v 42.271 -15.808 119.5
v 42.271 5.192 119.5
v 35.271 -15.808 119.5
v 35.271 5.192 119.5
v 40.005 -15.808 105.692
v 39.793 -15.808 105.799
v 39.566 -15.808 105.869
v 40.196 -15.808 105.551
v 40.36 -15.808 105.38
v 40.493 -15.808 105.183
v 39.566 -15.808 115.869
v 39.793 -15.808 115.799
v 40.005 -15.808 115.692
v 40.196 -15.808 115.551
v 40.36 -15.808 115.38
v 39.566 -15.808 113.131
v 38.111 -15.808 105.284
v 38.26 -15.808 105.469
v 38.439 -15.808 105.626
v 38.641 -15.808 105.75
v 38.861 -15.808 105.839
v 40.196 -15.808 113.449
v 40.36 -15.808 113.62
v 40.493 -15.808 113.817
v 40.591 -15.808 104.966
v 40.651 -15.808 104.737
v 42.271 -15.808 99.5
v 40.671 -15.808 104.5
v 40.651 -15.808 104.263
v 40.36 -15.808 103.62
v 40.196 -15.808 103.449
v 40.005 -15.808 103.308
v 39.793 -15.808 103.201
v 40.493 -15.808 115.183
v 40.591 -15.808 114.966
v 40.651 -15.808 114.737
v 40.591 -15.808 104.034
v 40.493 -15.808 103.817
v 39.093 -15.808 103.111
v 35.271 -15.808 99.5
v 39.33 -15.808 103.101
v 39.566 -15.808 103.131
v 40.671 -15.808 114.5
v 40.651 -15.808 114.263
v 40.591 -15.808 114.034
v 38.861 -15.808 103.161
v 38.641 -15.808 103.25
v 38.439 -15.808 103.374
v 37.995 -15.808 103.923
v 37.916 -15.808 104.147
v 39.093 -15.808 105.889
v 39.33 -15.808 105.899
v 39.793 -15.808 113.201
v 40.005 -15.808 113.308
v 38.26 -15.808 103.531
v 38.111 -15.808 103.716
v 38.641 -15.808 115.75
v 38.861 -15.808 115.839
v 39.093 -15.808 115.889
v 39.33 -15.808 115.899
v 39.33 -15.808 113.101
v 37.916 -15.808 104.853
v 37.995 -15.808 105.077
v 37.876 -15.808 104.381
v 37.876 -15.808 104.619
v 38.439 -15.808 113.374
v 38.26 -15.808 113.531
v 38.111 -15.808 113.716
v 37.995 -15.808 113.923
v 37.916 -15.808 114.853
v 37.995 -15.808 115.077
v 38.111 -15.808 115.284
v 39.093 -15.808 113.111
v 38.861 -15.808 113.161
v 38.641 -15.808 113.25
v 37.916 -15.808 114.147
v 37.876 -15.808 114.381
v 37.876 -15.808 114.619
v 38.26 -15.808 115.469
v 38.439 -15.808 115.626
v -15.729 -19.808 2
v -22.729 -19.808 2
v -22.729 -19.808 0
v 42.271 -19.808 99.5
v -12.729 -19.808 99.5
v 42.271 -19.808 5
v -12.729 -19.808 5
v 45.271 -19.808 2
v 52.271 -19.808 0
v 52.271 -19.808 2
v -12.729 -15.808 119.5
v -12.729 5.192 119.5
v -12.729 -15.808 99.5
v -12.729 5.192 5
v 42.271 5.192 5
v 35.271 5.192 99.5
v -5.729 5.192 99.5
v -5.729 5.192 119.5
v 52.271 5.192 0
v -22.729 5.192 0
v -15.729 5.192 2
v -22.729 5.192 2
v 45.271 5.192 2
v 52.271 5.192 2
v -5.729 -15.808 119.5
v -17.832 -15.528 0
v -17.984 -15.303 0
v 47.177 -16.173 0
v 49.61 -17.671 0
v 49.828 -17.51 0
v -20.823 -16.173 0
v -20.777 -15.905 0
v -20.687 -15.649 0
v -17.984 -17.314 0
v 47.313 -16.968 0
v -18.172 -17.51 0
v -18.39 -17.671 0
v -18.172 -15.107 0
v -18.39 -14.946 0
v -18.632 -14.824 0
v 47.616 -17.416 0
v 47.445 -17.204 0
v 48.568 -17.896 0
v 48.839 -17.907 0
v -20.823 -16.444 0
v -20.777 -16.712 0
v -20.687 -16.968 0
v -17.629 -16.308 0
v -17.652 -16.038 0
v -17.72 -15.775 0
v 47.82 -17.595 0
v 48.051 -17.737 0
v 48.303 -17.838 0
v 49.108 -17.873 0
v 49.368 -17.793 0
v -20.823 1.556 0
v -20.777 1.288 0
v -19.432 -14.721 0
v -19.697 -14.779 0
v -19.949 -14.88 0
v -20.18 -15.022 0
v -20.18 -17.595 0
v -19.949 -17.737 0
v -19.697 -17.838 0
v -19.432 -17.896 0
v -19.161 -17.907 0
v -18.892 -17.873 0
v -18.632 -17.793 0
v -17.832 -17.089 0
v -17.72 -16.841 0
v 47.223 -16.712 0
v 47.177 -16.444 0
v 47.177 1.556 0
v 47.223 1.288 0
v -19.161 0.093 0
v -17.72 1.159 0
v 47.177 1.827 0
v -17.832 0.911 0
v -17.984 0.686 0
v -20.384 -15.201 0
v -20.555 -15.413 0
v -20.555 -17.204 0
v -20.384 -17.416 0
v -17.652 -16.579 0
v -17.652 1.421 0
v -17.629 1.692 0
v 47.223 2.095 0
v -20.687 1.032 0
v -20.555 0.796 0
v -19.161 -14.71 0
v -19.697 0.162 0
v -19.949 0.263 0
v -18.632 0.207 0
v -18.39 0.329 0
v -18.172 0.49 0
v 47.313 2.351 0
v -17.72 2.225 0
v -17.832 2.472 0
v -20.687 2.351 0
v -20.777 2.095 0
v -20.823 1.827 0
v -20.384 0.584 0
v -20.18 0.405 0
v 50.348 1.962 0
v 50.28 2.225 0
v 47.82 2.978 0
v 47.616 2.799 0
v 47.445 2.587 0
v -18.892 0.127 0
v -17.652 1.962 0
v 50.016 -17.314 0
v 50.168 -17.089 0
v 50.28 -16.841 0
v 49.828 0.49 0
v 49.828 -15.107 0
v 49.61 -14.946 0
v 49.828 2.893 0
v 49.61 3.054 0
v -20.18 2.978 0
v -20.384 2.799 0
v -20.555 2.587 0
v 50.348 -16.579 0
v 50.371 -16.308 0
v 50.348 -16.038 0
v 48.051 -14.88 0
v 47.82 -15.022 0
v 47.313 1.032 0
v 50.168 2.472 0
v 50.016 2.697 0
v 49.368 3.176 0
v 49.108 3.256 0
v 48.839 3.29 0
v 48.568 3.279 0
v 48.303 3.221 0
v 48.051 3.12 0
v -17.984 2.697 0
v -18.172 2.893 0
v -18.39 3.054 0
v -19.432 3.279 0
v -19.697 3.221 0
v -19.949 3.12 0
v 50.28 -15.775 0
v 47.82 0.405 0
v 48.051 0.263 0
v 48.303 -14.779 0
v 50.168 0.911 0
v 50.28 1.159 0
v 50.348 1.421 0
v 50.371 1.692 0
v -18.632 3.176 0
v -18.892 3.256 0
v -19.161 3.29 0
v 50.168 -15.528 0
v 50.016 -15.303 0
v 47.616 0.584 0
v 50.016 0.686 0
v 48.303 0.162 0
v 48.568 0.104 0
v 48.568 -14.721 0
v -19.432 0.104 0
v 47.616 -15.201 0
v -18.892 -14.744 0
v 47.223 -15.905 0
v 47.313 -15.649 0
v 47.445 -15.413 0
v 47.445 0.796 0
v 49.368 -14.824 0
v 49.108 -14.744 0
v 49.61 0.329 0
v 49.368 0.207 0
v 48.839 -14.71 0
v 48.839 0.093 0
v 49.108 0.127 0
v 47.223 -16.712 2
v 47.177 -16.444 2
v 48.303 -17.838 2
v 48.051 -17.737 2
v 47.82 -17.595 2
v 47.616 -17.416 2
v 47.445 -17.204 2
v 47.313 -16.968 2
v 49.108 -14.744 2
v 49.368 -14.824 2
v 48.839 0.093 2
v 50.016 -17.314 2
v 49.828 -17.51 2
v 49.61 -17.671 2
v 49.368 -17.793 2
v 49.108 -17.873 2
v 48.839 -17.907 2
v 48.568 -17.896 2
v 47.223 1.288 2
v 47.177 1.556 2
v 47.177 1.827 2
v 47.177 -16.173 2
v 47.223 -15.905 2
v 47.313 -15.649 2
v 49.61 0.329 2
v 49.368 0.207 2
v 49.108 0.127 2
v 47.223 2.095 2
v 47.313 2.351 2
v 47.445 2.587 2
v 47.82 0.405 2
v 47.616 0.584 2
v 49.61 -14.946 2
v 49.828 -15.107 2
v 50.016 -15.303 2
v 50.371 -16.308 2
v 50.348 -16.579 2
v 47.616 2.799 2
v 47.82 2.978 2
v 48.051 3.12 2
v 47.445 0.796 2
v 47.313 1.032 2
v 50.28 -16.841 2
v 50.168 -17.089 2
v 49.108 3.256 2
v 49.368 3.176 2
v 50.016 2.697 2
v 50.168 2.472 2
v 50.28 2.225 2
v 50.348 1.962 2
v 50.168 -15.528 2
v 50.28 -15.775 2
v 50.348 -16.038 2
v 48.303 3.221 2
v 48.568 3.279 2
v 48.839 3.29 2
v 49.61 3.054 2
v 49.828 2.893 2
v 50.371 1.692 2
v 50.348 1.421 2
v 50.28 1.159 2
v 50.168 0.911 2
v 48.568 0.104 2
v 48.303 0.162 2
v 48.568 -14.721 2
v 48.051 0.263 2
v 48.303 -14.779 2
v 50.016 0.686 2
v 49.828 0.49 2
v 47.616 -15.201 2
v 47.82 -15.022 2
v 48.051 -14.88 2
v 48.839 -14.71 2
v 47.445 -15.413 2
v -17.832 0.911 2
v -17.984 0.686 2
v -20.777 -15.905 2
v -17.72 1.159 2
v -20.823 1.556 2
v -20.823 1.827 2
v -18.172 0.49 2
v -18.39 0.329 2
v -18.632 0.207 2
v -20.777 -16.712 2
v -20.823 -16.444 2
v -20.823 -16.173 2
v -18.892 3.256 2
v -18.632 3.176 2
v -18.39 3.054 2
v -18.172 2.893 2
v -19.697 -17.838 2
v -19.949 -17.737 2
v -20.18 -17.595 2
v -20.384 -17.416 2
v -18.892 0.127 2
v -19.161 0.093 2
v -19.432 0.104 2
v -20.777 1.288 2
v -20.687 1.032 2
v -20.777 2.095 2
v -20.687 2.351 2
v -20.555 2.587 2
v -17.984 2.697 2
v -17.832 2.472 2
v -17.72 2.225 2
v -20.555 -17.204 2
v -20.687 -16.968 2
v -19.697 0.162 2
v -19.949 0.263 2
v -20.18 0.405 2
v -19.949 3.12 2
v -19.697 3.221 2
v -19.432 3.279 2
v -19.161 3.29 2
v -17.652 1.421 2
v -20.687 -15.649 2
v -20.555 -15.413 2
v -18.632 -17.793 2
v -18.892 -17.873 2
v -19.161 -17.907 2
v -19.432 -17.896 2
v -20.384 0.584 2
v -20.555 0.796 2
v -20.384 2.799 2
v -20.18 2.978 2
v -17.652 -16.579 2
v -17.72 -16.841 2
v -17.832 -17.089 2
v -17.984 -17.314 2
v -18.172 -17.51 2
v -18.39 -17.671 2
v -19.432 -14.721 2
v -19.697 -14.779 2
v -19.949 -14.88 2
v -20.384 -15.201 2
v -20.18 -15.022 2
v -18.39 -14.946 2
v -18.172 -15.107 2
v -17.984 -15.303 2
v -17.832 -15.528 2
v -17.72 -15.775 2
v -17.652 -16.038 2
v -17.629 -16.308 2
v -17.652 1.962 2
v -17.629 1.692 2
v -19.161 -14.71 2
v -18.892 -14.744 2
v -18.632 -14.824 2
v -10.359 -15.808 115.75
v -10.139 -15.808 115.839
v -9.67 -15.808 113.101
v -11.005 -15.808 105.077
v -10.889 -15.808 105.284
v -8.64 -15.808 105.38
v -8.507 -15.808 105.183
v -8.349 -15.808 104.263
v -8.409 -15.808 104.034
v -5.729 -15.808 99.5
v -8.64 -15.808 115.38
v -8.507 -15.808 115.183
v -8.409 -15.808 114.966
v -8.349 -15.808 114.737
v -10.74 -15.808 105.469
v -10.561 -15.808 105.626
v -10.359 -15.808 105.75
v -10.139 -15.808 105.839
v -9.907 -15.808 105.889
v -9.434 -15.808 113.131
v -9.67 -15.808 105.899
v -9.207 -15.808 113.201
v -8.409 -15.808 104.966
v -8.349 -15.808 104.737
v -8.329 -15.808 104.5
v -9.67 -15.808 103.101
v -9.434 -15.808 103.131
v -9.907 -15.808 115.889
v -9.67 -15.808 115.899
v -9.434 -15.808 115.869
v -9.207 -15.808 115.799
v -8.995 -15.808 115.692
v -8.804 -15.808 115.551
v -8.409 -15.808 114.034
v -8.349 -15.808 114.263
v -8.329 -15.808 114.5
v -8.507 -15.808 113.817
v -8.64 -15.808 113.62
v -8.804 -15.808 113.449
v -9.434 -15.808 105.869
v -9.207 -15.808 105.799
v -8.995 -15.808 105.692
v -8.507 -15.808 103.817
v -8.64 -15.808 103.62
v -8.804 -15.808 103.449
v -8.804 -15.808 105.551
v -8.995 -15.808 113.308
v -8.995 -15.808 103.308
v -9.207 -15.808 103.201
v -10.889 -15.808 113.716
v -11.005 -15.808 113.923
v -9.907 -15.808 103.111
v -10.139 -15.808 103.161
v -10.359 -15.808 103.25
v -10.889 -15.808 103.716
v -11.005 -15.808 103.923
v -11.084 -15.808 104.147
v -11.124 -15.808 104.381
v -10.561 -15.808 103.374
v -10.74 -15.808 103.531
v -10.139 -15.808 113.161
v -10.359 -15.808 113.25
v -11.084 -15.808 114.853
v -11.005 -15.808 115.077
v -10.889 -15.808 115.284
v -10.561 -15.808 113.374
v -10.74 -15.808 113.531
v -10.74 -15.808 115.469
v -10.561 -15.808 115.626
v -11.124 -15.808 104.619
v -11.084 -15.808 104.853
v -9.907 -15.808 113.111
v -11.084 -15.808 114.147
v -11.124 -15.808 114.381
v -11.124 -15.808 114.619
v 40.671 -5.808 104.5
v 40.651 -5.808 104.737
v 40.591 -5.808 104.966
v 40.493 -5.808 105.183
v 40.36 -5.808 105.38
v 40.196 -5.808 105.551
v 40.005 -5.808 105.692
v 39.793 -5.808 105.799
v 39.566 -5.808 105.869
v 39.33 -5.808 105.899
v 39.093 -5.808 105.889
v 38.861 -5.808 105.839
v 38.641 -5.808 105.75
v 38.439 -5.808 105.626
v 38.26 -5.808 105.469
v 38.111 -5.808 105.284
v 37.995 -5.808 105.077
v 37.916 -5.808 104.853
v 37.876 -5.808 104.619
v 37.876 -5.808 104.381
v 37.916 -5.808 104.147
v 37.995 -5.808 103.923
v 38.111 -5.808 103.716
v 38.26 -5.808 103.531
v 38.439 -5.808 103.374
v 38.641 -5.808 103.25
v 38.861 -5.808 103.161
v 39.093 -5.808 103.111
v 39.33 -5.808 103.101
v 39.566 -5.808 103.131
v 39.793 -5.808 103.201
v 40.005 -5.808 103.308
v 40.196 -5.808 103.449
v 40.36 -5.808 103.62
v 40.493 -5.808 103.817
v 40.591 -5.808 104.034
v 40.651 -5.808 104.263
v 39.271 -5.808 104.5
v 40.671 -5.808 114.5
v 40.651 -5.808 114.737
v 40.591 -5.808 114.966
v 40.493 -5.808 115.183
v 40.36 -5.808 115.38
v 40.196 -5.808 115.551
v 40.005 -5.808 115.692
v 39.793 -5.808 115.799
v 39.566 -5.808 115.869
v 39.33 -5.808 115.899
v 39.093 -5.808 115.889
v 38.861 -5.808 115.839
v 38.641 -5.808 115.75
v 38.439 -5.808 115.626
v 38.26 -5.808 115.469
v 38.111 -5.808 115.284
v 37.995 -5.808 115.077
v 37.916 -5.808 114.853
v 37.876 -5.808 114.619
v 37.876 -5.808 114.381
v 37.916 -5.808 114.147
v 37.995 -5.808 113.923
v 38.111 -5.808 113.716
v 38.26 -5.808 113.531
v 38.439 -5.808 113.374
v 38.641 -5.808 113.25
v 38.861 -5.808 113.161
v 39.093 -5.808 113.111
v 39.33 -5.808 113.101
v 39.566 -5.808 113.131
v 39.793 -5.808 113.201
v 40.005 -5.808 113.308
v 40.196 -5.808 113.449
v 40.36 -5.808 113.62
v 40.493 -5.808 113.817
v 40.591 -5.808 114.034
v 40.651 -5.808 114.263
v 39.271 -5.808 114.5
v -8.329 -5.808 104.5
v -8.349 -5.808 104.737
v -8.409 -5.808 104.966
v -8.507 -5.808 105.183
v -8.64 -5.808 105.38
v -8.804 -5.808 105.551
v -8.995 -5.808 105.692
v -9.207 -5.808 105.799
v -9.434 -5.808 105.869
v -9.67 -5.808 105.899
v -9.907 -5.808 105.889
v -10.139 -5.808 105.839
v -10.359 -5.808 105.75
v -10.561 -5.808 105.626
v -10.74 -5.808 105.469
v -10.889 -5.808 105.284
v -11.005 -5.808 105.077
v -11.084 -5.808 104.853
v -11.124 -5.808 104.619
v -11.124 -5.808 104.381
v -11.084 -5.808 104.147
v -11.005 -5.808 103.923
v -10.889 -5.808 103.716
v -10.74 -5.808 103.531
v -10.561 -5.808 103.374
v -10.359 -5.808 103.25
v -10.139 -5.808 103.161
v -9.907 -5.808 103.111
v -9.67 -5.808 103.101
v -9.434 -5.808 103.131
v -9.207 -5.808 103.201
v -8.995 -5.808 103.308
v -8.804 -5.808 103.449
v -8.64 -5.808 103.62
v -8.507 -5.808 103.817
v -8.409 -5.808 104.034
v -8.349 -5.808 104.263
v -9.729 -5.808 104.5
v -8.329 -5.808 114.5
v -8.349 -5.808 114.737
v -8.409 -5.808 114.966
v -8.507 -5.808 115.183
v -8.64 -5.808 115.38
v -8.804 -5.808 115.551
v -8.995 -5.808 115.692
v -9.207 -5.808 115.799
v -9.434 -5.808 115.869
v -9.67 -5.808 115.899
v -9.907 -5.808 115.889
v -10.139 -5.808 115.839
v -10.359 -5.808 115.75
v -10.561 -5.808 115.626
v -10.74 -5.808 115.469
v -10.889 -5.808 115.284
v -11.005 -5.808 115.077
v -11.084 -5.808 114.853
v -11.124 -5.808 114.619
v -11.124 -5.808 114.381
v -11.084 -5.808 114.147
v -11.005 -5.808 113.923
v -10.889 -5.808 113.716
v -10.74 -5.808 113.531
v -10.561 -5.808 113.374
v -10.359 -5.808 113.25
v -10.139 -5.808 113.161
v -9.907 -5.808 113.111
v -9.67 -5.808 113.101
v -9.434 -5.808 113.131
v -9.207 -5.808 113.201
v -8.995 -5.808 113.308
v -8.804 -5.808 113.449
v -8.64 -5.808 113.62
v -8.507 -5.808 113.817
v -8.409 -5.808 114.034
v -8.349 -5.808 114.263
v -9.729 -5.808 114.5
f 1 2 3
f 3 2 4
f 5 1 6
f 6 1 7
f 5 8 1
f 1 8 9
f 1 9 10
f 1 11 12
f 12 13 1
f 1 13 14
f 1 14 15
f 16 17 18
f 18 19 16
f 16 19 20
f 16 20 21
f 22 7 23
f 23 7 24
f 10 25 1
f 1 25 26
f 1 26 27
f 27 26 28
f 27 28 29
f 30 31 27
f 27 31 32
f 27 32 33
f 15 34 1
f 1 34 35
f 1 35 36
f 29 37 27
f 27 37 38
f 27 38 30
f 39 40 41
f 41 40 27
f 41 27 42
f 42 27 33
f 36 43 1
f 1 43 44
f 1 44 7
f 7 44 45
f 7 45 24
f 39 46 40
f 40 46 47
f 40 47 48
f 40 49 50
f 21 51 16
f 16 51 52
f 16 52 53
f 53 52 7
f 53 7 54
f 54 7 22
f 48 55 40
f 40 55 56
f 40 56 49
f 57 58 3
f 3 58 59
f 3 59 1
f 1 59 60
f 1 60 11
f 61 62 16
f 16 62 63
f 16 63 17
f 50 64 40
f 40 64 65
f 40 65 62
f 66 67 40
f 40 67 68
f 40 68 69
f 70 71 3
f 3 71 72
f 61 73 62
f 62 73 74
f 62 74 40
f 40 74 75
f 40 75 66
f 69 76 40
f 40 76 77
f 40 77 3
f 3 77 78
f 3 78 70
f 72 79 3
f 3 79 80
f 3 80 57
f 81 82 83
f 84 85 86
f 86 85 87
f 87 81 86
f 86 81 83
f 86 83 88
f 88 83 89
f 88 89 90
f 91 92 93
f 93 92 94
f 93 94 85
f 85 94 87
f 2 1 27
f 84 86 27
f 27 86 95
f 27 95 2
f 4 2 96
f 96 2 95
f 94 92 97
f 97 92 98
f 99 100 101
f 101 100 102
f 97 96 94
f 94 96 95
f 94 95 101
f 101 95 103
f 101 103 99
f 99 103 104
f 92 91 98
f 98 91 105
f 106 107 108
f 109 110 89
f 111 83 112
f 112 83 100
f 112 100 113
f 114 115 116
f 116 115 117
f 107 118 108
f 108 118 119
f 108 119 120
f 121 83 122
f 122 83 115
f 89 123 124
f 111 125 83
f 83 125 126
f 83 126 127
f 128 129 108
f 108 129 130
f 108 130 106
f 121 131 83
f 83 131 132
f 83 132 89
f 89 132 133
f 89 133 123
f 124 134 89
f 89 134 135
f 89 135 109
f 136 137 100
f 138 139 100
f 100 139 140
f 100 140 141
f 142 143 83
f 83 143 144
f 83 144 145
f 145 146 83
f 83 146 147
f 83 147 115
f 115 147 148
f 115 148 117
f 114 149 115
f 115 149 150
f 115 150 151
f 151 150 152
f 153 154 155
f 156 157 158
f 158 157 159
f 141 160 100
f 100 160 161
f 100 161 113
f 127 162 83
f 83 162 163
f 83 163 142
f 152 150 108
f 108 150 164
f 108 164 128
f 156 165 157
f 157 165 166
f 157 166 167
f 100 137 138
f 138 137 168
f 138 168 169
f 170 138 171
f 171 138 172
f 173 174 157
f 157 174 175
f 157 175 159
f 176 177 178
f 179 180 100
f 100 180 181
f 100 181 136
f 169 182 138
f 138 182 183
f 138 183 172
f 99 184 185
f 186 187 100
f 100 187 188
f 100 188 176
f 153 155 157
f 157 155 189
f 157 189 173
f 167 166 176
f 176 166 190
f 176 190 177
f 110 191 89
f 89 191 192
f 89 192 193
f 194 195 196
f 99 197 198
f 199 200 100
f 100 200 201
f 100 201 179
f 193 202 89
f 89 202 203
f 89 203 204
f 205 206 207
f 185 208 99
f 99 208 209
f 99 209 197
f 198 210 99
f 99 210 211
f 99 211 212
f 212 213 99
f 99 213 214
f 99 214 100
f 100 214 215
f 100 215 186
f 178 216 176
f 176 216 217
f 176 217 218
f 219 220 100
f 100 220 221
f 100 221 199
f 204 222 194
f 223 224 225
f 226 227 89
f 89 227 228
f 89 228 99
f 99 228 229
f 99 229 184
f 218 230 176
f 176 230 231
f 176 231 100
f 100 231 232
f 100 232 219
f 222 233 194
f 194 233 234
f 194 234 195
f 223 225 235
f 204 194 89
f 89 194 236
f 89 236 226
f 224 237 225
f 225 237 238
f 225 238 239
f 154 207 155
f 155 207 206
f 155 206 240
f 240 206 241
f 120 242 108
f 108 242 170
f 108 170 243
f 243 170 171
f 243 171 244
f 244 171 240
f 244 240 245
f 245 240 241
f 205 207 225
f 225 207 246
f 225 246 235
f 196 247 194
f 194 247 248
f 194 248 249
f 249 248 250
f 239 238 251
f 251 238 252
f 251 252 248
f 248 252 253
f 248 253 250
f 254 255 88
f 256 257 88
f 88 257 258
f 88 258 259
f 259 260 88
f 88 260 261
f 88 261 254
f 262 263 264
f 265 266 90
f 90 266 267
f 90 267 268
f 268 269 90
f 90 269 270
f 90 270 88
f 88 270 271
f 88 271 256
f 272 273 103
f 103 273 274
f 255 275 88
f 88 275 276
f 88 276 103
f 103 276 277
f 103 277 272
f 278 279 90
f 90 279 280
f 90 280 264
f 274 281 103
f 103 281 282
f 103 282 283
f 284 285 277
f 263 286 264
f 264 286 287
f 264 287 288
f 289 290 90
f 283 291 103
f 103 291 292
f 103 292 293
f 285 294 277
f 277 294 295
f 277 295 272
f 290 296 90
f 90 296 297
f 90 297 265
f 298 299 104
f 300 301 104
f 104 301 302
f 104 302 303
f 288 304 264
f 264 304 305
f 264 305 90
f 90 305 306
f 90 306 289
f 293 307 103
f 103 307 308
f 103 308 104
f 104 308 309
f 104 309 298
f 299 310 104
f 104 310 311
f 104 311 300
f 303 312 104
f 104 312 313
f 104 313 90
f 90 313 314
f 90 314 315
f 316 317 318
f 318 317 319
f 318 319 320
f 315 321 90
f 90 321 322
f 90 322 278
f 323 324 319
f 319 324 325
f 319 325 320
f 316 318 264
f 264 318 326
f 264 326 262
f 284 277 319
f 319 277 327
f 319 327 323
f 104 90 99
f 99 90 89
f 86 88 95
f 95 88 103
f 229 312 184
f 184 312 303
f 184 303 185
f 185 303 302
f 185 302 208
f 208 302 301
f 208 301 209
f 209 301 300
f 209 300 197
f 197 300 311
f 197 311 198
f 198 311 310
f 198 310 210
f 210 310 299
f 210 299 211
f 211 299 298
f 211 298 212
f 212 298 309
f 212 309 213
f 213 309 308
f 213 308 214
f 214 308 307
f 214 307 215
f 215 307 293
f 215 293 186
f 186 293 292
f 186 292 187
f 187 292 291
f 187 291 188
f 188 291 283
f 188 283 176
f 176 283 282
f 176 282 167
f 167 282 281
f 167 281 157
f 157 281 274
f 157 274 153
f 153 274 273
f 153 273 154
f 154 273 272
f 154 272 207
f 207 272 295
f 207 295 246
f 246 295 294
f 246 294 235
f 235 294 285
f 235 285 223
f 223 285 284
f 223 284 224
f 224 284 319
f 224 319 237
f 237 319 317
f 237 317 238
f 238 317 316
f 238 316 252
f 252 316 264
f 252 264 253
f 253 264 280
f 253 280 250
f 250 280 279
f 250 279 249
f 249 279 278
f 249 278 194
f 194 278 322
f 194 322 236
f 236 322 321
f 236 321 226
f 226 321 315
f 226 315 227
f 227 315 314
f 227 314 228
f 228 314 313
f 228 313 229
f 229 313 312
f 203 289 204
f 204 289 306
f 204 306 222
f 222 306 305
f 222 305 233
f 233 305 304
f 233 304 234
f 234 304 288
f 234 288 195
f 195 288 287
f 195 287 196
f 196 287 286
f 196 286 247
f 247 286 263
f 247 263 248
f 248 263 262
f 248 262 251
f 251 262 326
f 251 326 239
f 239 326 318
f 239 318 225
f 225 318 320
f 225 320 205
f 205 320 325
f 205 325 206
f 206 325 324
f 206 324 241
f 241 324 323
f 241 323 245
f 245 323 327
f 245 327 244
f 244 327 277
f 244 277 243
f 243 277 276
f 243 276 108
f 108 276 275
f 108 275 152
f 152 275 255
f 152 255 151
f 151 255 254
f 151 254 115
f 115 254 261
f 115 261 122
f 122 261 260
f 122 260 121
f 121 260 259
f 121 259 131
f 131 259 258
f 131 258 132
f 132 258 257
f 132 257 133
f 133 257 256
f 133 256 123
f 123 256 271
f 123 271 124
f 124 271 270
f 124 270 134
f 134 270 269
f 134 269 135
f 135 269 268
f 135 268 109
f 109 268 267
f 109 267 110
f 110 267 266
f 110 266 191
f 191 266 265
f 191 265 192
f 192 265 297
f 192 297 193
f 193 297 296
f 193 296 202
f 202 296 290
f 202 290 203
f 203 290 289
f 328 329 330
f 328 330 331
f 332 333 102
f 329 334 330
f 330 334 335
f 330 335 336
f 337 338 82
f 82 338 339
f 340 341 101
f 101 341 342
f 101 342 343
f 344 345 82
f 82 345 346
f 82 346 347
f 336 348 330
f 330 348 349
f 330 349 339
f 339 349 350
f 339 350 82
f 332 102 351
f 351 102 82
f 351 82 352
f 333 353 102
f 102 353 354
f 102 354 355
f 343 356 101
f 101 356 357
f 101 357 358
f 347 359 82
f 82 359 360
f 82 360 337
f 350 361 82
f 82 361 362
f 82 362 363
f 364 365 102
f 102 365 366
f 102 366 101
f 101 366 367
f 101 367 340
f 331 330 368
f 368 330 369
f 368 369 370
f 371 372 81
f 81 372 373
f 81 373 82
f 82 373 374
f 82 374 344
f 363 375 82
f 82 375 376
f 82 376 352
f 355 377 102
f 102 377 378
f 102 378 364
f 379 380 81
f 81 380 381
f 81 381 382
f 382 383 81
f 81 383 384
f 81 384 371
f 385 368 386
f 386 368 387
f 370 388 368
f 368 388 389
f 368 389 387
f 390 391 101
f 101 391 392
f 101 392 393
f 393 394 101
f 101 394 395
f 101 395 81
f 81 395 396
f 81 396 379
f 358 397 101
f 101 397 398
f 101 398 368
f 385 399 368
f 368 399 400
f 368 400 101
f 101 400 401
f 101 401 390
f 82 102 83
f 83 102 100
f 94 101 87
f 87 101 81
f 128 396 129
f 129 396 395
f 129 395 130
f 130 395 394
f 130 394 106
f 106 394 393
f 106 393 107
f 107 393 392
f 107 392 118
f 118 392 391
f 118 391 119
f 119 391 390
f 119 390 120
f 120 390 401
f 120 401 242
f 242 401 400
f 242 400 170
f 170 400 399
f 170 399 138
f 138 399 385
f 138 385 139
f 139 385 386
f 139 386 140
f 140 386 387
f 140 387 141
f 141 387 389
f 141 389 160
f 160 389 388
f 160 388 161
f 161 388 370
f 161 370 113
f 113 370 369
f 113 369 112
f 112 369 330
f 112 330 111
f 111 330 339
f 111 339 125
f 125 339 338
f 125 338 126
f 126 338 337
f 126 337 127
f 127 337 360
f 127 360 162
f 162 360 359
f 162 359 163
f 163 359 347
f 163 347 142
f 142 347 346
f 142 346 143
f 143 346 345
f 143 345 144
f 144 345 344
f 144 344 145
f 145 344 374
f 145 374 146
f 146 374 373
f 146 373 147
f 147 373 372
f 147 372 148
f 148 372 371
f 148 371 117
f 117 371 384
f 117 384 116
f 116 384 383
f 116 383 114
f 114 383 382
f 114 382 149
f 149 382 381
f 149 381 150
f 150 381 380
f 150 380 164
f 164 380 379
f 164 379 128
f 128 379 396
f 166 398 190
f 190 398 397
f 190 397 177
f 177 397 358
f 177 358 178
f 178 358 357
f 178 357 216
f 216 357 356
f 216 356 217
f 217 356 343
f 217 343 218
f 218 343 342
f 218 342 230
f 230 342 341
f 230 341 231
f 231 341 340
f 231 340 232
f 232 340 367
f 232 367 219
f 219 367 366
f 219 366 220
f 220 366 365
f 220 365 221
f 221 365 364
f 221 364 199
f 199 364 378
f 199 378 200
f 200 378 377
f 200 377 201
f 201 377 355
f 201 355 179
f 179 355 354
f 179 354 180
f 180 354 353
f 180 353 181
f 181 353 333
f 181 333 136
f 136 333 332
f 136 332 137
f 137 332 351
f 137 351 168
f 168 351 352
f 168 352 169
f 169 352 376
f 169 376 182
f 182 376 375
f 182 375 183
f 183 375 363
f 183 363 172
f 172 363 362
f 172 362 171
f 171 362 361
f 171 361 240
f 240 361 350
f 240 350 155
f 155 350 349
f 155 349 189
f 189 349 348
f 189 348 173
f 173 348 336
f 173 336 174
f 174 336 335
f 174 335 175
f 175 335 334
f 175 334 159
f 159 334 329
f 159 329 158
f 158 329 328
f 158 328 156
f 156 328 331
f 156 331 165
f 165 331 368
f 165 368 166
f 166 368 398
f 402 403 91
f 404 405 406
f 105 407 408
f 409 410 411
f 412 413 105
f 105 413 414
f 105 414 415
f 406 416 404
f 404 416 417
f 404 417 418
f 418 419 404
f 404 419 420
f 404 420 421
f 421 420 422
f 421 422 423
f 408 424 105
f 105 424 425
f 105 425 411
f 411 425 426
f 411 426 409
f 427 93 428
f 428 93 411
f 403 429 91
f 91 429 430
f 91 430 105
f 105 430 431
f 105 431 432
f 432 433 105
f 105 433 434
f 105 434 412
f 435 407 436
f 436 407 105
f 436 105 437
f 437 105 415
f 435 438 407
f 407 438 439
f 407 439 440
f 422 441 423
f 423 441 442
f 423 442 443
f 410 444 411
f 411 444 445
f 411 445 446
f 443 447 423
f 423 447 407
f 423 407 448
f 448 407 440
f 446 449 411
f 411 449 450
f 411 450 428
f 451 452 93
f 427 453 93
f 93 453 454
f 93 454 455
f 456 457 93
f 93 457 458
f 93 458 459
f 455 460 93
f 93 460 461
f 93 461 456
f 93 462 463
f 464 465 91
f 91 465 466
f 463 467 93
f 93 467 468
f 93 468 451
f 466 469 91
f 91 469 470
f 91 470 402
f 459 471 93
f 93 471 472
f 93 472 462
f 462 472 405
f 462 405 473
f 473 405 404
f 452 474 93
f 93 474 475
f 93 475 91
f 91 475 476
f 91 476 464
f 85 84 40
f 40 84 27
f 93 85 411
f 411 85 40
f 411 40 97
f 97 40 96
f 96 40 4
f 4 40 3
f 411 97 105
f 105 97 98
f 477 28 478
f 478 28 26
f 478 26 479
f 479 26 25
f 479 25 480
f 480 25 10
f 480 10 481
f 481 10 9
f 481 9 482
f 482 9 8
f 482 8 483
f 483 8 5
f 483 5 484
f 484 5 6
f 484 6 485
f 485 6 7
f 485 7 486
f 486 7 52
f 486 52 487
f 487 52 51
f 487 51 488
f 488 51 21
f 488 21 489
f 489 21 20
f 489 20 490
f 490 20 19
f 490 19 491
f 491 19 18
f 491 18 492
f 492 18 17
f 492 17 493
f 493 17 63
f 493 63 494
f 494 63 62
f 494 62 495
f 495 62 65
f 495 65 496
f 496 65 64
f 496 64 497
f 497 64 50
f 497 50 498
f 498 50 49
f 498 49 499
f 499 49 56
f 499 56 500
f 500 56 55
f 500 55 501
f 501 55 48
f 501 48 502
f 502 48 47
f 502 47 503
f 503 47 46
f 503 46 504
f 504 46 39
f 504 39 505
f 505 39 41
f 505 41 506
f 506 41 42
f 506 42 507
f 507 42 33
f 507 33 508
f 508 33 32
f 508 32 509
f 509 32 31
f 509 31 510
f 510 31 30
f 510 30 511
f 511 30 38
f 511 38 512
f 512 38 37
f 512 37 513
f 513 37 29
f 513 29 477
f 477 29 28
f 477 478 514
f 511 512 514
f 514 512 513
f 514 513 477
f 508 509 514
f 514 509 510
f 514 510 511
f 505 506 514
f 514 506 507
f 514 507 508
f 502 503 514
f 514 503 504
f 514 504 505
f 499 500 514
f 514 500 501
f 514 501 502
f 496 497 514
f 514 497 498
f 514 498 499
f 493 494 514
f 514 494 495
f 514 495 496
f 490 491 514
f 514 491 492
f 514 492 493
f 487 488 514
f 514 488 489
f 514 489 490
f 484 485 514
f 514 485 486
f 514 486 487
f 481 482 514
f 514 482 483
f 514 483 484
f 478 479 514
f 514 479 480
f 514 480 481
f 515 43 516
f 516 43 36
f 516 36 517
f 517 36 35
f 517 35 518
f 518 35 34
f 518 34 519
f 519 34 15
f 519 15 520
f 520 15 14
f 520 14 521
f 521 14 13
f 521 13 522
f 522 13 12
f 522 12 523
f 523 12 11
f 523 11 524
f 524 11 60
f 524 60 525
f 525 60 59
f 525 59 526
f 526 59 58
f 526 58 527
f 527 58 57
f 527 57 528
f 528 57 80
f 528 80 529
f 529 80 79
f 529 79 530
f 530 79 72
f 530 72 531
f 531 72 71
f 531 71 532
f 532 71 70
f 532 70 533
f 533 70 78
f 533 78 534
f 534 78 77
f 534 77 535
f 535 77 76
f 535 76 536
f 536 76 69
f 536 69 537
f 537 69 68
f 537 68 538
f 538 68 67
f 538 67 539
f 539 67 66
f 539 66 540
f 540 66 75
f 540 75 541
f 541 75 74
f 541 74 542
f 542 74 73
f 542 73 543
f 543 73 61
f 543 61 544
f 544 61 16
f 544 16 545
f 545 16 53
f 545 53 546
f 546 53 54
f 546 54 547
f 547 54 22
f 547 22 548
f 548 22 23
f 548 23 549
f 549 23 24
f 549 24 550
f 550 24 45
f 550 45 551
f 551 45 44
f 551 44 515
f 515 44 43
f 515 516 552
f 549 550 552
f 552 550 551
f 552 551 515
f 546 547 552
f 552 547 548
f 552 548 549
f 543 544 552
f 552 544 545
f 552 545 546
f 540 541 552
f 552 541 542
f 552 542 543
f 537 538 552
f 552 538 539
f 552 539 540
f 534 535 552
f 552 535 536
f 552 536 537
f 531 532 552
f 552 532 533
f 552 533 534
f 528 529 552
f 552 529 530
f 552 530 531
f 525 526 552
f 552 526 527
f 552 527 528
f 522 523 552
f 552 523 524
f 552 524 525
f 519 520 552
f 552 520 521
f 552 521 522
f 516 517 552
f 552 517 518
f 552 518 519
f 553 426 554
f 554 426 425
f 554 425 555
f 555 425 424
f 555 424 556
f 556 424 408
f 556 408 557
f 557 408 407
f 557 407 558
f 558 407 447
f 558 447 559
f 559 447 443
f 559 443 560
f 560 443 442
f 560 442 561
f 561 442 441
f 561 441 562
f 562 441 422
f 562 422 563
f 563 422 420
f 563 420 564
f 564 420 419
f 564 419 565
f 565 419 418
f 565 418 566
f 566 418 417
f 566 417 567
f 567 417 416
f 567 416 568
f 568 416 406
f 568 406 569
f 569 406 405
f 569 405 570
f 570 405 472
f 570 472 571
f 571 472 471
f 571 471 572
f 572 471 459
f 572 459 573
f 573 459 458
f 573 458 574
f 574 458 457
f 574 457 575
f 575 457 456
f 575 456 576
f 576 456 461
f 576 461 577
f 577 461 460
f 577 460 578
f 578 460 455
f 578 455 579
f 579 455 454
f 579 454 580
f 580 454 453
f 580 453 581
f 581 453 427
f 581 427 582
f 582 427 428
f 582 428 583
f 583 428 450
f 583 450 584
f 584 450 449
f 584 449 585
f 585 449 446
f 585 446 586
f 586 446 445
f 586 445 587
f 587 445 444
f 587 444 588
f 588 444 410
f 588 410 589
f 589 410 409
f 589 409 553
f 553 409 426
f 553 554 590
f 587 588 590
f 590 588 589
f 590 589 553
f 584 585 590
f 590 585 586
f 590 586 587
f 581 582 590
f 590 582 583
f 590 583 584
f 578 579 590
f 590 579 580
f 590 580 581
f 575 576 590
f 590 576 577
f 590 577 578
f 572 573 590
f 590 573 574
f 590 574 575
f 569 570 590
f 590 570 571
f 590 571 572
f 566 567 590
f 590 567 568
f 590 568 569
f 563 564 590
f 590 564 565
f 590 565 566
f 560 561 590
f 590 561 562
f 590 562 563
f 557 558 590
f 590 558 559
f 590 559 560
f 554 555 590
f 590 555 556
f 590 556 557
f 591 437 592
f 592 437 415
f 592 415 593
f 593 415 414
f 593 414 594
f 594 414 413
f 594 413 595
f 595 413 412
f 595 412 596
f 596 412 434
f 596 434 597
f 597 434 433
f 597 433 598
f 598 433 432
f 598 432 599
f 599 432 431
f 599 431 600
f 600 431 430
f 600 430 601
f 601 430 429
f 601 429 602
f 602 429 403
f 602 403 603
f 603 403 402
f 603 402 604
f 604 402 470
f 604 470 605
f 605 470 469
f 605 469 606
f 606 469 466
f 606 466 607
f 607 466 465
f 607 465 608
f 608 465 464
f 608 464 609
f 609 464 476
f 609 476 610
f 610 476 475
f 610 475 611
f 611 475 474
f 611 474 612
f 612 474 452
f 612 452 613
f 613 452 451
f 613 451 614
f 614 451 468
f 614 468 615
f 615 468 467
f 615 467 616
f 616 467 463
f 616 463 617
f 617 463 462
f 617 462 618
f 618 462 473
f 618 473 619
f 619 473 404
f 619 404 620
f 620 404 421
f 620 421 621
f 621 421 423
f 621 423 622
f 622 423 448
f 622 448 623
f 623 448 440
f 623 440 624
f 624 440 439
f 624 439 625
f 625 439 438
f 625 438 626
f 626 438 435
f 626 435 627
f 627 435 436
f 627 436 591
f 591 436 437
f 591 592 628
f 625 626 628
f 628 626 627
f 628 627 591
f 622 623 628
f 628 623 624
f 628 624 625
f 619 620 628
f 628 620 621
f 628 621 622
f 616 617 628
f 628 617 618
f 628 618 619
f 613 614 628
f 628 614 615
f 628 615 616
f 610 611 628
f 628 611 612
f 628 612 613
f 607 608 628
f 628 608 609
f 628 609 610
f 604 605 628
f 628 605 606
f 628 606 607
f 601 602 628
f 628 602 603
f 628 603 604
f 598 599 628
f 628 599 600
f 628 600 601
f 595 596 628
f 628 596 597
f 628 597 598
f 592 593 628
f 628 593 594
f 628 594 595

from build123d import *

# Parameters (mm, degrees)
SKETCH_1_W          = 55
SKETCH_1_H          = 25
EXTRUDE_1_DEPTH     = 119.5
SKETCH_3_W          = 2
SKETCH_3_H          = 25
EXTRUDE_2_DEPTH     = 10
EXTRUDE_3_DEPTH     = 25
SKETCH_6_R          = 1.6
CUT_EXTRUDE_2_DEPTH = 131.118748168
SKETCH_7_W          = 2
SKETCH_7_H          = 25
EXTRUDE_4_DEPTH     = 10
EXTRUDE_5_DEPTH     = 25
SKETCH_9_R          = 1.6
CUT_EXTRUDE_3_DEPTH = 131.118748168
SKETCH_10_W         = 55
SKETCH_10_H         = 4
CUT_EXTRUDE_4_DEPTH = 20
SKETCH_12_W         = 41
SKETCH_12_H         = 21
CUT_EXTRUDE_5_DEPTH = 20
SKETCH_13_R         = 1.4
CUT_EXTRUDE_6_DEPTH = 10
SKETCH_15_R         = 1.4
CUT_EXTRUDE_7_DEPTH = 10


with BuildPart() as part:
    # ｽｹｯﾁ1 → ﾎﾞｽ - 押し出し1 (new body)
    with BuildSketch(Plane.XY):
        with Locations((14.77105538, -7.308467742)):
            Rectangle(SKETCH_1_W, SKETCH_1_H)
    extrude(amount=EXTRUDE_1_DEPTH)

    # ｽｹｯﾁ3 → ﾎﾞｽ - 押し出し2 (add)
    with BuildSketch(Plane(origin=(42.27105538, 0, 0), x_dir=(0, 0, -1), z_dir=(1, 0, 0))):
        with Locations((-1, -7.308467742)):
            Rectangle(SKETCH_3_W, SKETCH_3_H)
    extrude(amount=EXTRUDE_2_DEPTH)

    # ｽｹｯﾁ5 → ﾎﾞｽ - 押し出し3 (add, through all)
    with BuildSketch(Plane(origin=(0, 5.191532258, 0), x_dir=(1, 0, 0), z_dir=(0, 1, 0))):
        Polygon((42.27105538, -5), (45.27105538, -2), (42.27105538, -2), align=None)
    extrude(amount=-EXTRUDE_3_DEPTH)

    # ｽｹｯﾁ6 → ｶｯﾄ - 押し出し2 (cut, through all)
    with BuildSketch(Plane.XY.offset(2)):
        with Locations((48.77105538, 1.691532258)):
            Circle(SKETCH_6_R)
        with Locations((48.77105538, -16.308467742)):
            Circle(SKETCH_6_R)
    extrude(amount=-CUT_EXTRUDE_2_DEPTH, mode=Mode.SUBTRACT)

    # ｽｹｯﾁ7 → ﾎﾞｽ - 押し出し4 (add)
    with BuildSketch(Plane.ZY.offset(12.72894462)):
        with Locations((1, -7.308467742)):
            Rectangle(SKETCH_7_W, SKETCH_7_H)
    extrude(amount=EXTRUDE_4_DEPTH)

    # ｽｹｯﾁ8 → ﾎﾞｽ - 押し出し5 (add, through all)
    with BuildSketch(Plane.XZ.offset(19.808467742)):
        Polygon((-12.72894462, 5), (-15.72894462, 2), (-12.72894462, 2), align=None)
    extrude(amount=-EXTRUDE_5_DEPTH)

    # ｽｹｯﾁ9 → ｶｯﾄ - 押し出し3 (cut, through all)
    with BuildSketch(Plane.XY.offset(2)):
        with Locations((-19.22894462, -16.308467742)):
            Circle(SKETCH_9_R)
        with Locations((-19.22894462, 1.691532258)):
            Circle(SKETCH_9_R)
    extrude(amount=-CUT_EXTRUDE_3_DEPTH, mode=Mode.SUBTRACT)

    # ｽｹｯﾁ10 → ｶｯﾄ - 押し出し4 (cut)
    with BuildSketch(Plane.XY.offset(119.5)):
        with Locations((14.77105538, -17.808467742)):
            Rectangle(SKETCH_10_W, SKETCH_10_H)
    extrude(amount=-CUT_EXTRUDE_4_DEPTH, mode=Mode.SUBTRACT)

    # ｽｹｯﾁ12 → ｶｯﾄ - 押し出し5 (cut)
    with BuildSketch(Plane.XY.offset(119.5)):
        with Locations((14.77105538, -5.308467742)):
            Rectangle(SKETCH_12_W, SKETCH_12_H)
    extrude(amount=-CUT_EXTRUDE_5_DEPTH, mode=Mode.SUBTRACT)

    # ｽｹｯﾁ13 → ｶｯﾄ - 押し出し6 (cut)
    with BuildSketch(Plane.XZ.offset(15.808467742)):
        with Locations((39.27105538, 104.5)):
            Circle(SKETCH_13_R)
        with Locations((39.27105538, 114.5)):
            Circle(SKETCH_13_R)
    extrude(amount=-CUT_EXTRUDE_6_DEPTH, mode=Mode.SUBTRACT)

    # ｽｹｯﾁ15 → ｶｯﾄ - 押し出し7 (cut)
    with BuildSketch(Plane(origin=(0, -15.808467742, 0), x_dir=(-1, 0, 0), z_dir=(0, -1, 0))):
        with Locations(Location((9.72894462, -104.5, 0), (0, 0, 180))):
            Circle(SKETCH_15_R)
        with Locations(Location((9.72894462, -114.5, 0), (0, 0, 180))):
            Circle(SKETCH_15_R)
    extrude(amount=-CUT_EXTRUDE_7_DEPTH, mode=Mode.SUBTRACT)


solid = part.part
